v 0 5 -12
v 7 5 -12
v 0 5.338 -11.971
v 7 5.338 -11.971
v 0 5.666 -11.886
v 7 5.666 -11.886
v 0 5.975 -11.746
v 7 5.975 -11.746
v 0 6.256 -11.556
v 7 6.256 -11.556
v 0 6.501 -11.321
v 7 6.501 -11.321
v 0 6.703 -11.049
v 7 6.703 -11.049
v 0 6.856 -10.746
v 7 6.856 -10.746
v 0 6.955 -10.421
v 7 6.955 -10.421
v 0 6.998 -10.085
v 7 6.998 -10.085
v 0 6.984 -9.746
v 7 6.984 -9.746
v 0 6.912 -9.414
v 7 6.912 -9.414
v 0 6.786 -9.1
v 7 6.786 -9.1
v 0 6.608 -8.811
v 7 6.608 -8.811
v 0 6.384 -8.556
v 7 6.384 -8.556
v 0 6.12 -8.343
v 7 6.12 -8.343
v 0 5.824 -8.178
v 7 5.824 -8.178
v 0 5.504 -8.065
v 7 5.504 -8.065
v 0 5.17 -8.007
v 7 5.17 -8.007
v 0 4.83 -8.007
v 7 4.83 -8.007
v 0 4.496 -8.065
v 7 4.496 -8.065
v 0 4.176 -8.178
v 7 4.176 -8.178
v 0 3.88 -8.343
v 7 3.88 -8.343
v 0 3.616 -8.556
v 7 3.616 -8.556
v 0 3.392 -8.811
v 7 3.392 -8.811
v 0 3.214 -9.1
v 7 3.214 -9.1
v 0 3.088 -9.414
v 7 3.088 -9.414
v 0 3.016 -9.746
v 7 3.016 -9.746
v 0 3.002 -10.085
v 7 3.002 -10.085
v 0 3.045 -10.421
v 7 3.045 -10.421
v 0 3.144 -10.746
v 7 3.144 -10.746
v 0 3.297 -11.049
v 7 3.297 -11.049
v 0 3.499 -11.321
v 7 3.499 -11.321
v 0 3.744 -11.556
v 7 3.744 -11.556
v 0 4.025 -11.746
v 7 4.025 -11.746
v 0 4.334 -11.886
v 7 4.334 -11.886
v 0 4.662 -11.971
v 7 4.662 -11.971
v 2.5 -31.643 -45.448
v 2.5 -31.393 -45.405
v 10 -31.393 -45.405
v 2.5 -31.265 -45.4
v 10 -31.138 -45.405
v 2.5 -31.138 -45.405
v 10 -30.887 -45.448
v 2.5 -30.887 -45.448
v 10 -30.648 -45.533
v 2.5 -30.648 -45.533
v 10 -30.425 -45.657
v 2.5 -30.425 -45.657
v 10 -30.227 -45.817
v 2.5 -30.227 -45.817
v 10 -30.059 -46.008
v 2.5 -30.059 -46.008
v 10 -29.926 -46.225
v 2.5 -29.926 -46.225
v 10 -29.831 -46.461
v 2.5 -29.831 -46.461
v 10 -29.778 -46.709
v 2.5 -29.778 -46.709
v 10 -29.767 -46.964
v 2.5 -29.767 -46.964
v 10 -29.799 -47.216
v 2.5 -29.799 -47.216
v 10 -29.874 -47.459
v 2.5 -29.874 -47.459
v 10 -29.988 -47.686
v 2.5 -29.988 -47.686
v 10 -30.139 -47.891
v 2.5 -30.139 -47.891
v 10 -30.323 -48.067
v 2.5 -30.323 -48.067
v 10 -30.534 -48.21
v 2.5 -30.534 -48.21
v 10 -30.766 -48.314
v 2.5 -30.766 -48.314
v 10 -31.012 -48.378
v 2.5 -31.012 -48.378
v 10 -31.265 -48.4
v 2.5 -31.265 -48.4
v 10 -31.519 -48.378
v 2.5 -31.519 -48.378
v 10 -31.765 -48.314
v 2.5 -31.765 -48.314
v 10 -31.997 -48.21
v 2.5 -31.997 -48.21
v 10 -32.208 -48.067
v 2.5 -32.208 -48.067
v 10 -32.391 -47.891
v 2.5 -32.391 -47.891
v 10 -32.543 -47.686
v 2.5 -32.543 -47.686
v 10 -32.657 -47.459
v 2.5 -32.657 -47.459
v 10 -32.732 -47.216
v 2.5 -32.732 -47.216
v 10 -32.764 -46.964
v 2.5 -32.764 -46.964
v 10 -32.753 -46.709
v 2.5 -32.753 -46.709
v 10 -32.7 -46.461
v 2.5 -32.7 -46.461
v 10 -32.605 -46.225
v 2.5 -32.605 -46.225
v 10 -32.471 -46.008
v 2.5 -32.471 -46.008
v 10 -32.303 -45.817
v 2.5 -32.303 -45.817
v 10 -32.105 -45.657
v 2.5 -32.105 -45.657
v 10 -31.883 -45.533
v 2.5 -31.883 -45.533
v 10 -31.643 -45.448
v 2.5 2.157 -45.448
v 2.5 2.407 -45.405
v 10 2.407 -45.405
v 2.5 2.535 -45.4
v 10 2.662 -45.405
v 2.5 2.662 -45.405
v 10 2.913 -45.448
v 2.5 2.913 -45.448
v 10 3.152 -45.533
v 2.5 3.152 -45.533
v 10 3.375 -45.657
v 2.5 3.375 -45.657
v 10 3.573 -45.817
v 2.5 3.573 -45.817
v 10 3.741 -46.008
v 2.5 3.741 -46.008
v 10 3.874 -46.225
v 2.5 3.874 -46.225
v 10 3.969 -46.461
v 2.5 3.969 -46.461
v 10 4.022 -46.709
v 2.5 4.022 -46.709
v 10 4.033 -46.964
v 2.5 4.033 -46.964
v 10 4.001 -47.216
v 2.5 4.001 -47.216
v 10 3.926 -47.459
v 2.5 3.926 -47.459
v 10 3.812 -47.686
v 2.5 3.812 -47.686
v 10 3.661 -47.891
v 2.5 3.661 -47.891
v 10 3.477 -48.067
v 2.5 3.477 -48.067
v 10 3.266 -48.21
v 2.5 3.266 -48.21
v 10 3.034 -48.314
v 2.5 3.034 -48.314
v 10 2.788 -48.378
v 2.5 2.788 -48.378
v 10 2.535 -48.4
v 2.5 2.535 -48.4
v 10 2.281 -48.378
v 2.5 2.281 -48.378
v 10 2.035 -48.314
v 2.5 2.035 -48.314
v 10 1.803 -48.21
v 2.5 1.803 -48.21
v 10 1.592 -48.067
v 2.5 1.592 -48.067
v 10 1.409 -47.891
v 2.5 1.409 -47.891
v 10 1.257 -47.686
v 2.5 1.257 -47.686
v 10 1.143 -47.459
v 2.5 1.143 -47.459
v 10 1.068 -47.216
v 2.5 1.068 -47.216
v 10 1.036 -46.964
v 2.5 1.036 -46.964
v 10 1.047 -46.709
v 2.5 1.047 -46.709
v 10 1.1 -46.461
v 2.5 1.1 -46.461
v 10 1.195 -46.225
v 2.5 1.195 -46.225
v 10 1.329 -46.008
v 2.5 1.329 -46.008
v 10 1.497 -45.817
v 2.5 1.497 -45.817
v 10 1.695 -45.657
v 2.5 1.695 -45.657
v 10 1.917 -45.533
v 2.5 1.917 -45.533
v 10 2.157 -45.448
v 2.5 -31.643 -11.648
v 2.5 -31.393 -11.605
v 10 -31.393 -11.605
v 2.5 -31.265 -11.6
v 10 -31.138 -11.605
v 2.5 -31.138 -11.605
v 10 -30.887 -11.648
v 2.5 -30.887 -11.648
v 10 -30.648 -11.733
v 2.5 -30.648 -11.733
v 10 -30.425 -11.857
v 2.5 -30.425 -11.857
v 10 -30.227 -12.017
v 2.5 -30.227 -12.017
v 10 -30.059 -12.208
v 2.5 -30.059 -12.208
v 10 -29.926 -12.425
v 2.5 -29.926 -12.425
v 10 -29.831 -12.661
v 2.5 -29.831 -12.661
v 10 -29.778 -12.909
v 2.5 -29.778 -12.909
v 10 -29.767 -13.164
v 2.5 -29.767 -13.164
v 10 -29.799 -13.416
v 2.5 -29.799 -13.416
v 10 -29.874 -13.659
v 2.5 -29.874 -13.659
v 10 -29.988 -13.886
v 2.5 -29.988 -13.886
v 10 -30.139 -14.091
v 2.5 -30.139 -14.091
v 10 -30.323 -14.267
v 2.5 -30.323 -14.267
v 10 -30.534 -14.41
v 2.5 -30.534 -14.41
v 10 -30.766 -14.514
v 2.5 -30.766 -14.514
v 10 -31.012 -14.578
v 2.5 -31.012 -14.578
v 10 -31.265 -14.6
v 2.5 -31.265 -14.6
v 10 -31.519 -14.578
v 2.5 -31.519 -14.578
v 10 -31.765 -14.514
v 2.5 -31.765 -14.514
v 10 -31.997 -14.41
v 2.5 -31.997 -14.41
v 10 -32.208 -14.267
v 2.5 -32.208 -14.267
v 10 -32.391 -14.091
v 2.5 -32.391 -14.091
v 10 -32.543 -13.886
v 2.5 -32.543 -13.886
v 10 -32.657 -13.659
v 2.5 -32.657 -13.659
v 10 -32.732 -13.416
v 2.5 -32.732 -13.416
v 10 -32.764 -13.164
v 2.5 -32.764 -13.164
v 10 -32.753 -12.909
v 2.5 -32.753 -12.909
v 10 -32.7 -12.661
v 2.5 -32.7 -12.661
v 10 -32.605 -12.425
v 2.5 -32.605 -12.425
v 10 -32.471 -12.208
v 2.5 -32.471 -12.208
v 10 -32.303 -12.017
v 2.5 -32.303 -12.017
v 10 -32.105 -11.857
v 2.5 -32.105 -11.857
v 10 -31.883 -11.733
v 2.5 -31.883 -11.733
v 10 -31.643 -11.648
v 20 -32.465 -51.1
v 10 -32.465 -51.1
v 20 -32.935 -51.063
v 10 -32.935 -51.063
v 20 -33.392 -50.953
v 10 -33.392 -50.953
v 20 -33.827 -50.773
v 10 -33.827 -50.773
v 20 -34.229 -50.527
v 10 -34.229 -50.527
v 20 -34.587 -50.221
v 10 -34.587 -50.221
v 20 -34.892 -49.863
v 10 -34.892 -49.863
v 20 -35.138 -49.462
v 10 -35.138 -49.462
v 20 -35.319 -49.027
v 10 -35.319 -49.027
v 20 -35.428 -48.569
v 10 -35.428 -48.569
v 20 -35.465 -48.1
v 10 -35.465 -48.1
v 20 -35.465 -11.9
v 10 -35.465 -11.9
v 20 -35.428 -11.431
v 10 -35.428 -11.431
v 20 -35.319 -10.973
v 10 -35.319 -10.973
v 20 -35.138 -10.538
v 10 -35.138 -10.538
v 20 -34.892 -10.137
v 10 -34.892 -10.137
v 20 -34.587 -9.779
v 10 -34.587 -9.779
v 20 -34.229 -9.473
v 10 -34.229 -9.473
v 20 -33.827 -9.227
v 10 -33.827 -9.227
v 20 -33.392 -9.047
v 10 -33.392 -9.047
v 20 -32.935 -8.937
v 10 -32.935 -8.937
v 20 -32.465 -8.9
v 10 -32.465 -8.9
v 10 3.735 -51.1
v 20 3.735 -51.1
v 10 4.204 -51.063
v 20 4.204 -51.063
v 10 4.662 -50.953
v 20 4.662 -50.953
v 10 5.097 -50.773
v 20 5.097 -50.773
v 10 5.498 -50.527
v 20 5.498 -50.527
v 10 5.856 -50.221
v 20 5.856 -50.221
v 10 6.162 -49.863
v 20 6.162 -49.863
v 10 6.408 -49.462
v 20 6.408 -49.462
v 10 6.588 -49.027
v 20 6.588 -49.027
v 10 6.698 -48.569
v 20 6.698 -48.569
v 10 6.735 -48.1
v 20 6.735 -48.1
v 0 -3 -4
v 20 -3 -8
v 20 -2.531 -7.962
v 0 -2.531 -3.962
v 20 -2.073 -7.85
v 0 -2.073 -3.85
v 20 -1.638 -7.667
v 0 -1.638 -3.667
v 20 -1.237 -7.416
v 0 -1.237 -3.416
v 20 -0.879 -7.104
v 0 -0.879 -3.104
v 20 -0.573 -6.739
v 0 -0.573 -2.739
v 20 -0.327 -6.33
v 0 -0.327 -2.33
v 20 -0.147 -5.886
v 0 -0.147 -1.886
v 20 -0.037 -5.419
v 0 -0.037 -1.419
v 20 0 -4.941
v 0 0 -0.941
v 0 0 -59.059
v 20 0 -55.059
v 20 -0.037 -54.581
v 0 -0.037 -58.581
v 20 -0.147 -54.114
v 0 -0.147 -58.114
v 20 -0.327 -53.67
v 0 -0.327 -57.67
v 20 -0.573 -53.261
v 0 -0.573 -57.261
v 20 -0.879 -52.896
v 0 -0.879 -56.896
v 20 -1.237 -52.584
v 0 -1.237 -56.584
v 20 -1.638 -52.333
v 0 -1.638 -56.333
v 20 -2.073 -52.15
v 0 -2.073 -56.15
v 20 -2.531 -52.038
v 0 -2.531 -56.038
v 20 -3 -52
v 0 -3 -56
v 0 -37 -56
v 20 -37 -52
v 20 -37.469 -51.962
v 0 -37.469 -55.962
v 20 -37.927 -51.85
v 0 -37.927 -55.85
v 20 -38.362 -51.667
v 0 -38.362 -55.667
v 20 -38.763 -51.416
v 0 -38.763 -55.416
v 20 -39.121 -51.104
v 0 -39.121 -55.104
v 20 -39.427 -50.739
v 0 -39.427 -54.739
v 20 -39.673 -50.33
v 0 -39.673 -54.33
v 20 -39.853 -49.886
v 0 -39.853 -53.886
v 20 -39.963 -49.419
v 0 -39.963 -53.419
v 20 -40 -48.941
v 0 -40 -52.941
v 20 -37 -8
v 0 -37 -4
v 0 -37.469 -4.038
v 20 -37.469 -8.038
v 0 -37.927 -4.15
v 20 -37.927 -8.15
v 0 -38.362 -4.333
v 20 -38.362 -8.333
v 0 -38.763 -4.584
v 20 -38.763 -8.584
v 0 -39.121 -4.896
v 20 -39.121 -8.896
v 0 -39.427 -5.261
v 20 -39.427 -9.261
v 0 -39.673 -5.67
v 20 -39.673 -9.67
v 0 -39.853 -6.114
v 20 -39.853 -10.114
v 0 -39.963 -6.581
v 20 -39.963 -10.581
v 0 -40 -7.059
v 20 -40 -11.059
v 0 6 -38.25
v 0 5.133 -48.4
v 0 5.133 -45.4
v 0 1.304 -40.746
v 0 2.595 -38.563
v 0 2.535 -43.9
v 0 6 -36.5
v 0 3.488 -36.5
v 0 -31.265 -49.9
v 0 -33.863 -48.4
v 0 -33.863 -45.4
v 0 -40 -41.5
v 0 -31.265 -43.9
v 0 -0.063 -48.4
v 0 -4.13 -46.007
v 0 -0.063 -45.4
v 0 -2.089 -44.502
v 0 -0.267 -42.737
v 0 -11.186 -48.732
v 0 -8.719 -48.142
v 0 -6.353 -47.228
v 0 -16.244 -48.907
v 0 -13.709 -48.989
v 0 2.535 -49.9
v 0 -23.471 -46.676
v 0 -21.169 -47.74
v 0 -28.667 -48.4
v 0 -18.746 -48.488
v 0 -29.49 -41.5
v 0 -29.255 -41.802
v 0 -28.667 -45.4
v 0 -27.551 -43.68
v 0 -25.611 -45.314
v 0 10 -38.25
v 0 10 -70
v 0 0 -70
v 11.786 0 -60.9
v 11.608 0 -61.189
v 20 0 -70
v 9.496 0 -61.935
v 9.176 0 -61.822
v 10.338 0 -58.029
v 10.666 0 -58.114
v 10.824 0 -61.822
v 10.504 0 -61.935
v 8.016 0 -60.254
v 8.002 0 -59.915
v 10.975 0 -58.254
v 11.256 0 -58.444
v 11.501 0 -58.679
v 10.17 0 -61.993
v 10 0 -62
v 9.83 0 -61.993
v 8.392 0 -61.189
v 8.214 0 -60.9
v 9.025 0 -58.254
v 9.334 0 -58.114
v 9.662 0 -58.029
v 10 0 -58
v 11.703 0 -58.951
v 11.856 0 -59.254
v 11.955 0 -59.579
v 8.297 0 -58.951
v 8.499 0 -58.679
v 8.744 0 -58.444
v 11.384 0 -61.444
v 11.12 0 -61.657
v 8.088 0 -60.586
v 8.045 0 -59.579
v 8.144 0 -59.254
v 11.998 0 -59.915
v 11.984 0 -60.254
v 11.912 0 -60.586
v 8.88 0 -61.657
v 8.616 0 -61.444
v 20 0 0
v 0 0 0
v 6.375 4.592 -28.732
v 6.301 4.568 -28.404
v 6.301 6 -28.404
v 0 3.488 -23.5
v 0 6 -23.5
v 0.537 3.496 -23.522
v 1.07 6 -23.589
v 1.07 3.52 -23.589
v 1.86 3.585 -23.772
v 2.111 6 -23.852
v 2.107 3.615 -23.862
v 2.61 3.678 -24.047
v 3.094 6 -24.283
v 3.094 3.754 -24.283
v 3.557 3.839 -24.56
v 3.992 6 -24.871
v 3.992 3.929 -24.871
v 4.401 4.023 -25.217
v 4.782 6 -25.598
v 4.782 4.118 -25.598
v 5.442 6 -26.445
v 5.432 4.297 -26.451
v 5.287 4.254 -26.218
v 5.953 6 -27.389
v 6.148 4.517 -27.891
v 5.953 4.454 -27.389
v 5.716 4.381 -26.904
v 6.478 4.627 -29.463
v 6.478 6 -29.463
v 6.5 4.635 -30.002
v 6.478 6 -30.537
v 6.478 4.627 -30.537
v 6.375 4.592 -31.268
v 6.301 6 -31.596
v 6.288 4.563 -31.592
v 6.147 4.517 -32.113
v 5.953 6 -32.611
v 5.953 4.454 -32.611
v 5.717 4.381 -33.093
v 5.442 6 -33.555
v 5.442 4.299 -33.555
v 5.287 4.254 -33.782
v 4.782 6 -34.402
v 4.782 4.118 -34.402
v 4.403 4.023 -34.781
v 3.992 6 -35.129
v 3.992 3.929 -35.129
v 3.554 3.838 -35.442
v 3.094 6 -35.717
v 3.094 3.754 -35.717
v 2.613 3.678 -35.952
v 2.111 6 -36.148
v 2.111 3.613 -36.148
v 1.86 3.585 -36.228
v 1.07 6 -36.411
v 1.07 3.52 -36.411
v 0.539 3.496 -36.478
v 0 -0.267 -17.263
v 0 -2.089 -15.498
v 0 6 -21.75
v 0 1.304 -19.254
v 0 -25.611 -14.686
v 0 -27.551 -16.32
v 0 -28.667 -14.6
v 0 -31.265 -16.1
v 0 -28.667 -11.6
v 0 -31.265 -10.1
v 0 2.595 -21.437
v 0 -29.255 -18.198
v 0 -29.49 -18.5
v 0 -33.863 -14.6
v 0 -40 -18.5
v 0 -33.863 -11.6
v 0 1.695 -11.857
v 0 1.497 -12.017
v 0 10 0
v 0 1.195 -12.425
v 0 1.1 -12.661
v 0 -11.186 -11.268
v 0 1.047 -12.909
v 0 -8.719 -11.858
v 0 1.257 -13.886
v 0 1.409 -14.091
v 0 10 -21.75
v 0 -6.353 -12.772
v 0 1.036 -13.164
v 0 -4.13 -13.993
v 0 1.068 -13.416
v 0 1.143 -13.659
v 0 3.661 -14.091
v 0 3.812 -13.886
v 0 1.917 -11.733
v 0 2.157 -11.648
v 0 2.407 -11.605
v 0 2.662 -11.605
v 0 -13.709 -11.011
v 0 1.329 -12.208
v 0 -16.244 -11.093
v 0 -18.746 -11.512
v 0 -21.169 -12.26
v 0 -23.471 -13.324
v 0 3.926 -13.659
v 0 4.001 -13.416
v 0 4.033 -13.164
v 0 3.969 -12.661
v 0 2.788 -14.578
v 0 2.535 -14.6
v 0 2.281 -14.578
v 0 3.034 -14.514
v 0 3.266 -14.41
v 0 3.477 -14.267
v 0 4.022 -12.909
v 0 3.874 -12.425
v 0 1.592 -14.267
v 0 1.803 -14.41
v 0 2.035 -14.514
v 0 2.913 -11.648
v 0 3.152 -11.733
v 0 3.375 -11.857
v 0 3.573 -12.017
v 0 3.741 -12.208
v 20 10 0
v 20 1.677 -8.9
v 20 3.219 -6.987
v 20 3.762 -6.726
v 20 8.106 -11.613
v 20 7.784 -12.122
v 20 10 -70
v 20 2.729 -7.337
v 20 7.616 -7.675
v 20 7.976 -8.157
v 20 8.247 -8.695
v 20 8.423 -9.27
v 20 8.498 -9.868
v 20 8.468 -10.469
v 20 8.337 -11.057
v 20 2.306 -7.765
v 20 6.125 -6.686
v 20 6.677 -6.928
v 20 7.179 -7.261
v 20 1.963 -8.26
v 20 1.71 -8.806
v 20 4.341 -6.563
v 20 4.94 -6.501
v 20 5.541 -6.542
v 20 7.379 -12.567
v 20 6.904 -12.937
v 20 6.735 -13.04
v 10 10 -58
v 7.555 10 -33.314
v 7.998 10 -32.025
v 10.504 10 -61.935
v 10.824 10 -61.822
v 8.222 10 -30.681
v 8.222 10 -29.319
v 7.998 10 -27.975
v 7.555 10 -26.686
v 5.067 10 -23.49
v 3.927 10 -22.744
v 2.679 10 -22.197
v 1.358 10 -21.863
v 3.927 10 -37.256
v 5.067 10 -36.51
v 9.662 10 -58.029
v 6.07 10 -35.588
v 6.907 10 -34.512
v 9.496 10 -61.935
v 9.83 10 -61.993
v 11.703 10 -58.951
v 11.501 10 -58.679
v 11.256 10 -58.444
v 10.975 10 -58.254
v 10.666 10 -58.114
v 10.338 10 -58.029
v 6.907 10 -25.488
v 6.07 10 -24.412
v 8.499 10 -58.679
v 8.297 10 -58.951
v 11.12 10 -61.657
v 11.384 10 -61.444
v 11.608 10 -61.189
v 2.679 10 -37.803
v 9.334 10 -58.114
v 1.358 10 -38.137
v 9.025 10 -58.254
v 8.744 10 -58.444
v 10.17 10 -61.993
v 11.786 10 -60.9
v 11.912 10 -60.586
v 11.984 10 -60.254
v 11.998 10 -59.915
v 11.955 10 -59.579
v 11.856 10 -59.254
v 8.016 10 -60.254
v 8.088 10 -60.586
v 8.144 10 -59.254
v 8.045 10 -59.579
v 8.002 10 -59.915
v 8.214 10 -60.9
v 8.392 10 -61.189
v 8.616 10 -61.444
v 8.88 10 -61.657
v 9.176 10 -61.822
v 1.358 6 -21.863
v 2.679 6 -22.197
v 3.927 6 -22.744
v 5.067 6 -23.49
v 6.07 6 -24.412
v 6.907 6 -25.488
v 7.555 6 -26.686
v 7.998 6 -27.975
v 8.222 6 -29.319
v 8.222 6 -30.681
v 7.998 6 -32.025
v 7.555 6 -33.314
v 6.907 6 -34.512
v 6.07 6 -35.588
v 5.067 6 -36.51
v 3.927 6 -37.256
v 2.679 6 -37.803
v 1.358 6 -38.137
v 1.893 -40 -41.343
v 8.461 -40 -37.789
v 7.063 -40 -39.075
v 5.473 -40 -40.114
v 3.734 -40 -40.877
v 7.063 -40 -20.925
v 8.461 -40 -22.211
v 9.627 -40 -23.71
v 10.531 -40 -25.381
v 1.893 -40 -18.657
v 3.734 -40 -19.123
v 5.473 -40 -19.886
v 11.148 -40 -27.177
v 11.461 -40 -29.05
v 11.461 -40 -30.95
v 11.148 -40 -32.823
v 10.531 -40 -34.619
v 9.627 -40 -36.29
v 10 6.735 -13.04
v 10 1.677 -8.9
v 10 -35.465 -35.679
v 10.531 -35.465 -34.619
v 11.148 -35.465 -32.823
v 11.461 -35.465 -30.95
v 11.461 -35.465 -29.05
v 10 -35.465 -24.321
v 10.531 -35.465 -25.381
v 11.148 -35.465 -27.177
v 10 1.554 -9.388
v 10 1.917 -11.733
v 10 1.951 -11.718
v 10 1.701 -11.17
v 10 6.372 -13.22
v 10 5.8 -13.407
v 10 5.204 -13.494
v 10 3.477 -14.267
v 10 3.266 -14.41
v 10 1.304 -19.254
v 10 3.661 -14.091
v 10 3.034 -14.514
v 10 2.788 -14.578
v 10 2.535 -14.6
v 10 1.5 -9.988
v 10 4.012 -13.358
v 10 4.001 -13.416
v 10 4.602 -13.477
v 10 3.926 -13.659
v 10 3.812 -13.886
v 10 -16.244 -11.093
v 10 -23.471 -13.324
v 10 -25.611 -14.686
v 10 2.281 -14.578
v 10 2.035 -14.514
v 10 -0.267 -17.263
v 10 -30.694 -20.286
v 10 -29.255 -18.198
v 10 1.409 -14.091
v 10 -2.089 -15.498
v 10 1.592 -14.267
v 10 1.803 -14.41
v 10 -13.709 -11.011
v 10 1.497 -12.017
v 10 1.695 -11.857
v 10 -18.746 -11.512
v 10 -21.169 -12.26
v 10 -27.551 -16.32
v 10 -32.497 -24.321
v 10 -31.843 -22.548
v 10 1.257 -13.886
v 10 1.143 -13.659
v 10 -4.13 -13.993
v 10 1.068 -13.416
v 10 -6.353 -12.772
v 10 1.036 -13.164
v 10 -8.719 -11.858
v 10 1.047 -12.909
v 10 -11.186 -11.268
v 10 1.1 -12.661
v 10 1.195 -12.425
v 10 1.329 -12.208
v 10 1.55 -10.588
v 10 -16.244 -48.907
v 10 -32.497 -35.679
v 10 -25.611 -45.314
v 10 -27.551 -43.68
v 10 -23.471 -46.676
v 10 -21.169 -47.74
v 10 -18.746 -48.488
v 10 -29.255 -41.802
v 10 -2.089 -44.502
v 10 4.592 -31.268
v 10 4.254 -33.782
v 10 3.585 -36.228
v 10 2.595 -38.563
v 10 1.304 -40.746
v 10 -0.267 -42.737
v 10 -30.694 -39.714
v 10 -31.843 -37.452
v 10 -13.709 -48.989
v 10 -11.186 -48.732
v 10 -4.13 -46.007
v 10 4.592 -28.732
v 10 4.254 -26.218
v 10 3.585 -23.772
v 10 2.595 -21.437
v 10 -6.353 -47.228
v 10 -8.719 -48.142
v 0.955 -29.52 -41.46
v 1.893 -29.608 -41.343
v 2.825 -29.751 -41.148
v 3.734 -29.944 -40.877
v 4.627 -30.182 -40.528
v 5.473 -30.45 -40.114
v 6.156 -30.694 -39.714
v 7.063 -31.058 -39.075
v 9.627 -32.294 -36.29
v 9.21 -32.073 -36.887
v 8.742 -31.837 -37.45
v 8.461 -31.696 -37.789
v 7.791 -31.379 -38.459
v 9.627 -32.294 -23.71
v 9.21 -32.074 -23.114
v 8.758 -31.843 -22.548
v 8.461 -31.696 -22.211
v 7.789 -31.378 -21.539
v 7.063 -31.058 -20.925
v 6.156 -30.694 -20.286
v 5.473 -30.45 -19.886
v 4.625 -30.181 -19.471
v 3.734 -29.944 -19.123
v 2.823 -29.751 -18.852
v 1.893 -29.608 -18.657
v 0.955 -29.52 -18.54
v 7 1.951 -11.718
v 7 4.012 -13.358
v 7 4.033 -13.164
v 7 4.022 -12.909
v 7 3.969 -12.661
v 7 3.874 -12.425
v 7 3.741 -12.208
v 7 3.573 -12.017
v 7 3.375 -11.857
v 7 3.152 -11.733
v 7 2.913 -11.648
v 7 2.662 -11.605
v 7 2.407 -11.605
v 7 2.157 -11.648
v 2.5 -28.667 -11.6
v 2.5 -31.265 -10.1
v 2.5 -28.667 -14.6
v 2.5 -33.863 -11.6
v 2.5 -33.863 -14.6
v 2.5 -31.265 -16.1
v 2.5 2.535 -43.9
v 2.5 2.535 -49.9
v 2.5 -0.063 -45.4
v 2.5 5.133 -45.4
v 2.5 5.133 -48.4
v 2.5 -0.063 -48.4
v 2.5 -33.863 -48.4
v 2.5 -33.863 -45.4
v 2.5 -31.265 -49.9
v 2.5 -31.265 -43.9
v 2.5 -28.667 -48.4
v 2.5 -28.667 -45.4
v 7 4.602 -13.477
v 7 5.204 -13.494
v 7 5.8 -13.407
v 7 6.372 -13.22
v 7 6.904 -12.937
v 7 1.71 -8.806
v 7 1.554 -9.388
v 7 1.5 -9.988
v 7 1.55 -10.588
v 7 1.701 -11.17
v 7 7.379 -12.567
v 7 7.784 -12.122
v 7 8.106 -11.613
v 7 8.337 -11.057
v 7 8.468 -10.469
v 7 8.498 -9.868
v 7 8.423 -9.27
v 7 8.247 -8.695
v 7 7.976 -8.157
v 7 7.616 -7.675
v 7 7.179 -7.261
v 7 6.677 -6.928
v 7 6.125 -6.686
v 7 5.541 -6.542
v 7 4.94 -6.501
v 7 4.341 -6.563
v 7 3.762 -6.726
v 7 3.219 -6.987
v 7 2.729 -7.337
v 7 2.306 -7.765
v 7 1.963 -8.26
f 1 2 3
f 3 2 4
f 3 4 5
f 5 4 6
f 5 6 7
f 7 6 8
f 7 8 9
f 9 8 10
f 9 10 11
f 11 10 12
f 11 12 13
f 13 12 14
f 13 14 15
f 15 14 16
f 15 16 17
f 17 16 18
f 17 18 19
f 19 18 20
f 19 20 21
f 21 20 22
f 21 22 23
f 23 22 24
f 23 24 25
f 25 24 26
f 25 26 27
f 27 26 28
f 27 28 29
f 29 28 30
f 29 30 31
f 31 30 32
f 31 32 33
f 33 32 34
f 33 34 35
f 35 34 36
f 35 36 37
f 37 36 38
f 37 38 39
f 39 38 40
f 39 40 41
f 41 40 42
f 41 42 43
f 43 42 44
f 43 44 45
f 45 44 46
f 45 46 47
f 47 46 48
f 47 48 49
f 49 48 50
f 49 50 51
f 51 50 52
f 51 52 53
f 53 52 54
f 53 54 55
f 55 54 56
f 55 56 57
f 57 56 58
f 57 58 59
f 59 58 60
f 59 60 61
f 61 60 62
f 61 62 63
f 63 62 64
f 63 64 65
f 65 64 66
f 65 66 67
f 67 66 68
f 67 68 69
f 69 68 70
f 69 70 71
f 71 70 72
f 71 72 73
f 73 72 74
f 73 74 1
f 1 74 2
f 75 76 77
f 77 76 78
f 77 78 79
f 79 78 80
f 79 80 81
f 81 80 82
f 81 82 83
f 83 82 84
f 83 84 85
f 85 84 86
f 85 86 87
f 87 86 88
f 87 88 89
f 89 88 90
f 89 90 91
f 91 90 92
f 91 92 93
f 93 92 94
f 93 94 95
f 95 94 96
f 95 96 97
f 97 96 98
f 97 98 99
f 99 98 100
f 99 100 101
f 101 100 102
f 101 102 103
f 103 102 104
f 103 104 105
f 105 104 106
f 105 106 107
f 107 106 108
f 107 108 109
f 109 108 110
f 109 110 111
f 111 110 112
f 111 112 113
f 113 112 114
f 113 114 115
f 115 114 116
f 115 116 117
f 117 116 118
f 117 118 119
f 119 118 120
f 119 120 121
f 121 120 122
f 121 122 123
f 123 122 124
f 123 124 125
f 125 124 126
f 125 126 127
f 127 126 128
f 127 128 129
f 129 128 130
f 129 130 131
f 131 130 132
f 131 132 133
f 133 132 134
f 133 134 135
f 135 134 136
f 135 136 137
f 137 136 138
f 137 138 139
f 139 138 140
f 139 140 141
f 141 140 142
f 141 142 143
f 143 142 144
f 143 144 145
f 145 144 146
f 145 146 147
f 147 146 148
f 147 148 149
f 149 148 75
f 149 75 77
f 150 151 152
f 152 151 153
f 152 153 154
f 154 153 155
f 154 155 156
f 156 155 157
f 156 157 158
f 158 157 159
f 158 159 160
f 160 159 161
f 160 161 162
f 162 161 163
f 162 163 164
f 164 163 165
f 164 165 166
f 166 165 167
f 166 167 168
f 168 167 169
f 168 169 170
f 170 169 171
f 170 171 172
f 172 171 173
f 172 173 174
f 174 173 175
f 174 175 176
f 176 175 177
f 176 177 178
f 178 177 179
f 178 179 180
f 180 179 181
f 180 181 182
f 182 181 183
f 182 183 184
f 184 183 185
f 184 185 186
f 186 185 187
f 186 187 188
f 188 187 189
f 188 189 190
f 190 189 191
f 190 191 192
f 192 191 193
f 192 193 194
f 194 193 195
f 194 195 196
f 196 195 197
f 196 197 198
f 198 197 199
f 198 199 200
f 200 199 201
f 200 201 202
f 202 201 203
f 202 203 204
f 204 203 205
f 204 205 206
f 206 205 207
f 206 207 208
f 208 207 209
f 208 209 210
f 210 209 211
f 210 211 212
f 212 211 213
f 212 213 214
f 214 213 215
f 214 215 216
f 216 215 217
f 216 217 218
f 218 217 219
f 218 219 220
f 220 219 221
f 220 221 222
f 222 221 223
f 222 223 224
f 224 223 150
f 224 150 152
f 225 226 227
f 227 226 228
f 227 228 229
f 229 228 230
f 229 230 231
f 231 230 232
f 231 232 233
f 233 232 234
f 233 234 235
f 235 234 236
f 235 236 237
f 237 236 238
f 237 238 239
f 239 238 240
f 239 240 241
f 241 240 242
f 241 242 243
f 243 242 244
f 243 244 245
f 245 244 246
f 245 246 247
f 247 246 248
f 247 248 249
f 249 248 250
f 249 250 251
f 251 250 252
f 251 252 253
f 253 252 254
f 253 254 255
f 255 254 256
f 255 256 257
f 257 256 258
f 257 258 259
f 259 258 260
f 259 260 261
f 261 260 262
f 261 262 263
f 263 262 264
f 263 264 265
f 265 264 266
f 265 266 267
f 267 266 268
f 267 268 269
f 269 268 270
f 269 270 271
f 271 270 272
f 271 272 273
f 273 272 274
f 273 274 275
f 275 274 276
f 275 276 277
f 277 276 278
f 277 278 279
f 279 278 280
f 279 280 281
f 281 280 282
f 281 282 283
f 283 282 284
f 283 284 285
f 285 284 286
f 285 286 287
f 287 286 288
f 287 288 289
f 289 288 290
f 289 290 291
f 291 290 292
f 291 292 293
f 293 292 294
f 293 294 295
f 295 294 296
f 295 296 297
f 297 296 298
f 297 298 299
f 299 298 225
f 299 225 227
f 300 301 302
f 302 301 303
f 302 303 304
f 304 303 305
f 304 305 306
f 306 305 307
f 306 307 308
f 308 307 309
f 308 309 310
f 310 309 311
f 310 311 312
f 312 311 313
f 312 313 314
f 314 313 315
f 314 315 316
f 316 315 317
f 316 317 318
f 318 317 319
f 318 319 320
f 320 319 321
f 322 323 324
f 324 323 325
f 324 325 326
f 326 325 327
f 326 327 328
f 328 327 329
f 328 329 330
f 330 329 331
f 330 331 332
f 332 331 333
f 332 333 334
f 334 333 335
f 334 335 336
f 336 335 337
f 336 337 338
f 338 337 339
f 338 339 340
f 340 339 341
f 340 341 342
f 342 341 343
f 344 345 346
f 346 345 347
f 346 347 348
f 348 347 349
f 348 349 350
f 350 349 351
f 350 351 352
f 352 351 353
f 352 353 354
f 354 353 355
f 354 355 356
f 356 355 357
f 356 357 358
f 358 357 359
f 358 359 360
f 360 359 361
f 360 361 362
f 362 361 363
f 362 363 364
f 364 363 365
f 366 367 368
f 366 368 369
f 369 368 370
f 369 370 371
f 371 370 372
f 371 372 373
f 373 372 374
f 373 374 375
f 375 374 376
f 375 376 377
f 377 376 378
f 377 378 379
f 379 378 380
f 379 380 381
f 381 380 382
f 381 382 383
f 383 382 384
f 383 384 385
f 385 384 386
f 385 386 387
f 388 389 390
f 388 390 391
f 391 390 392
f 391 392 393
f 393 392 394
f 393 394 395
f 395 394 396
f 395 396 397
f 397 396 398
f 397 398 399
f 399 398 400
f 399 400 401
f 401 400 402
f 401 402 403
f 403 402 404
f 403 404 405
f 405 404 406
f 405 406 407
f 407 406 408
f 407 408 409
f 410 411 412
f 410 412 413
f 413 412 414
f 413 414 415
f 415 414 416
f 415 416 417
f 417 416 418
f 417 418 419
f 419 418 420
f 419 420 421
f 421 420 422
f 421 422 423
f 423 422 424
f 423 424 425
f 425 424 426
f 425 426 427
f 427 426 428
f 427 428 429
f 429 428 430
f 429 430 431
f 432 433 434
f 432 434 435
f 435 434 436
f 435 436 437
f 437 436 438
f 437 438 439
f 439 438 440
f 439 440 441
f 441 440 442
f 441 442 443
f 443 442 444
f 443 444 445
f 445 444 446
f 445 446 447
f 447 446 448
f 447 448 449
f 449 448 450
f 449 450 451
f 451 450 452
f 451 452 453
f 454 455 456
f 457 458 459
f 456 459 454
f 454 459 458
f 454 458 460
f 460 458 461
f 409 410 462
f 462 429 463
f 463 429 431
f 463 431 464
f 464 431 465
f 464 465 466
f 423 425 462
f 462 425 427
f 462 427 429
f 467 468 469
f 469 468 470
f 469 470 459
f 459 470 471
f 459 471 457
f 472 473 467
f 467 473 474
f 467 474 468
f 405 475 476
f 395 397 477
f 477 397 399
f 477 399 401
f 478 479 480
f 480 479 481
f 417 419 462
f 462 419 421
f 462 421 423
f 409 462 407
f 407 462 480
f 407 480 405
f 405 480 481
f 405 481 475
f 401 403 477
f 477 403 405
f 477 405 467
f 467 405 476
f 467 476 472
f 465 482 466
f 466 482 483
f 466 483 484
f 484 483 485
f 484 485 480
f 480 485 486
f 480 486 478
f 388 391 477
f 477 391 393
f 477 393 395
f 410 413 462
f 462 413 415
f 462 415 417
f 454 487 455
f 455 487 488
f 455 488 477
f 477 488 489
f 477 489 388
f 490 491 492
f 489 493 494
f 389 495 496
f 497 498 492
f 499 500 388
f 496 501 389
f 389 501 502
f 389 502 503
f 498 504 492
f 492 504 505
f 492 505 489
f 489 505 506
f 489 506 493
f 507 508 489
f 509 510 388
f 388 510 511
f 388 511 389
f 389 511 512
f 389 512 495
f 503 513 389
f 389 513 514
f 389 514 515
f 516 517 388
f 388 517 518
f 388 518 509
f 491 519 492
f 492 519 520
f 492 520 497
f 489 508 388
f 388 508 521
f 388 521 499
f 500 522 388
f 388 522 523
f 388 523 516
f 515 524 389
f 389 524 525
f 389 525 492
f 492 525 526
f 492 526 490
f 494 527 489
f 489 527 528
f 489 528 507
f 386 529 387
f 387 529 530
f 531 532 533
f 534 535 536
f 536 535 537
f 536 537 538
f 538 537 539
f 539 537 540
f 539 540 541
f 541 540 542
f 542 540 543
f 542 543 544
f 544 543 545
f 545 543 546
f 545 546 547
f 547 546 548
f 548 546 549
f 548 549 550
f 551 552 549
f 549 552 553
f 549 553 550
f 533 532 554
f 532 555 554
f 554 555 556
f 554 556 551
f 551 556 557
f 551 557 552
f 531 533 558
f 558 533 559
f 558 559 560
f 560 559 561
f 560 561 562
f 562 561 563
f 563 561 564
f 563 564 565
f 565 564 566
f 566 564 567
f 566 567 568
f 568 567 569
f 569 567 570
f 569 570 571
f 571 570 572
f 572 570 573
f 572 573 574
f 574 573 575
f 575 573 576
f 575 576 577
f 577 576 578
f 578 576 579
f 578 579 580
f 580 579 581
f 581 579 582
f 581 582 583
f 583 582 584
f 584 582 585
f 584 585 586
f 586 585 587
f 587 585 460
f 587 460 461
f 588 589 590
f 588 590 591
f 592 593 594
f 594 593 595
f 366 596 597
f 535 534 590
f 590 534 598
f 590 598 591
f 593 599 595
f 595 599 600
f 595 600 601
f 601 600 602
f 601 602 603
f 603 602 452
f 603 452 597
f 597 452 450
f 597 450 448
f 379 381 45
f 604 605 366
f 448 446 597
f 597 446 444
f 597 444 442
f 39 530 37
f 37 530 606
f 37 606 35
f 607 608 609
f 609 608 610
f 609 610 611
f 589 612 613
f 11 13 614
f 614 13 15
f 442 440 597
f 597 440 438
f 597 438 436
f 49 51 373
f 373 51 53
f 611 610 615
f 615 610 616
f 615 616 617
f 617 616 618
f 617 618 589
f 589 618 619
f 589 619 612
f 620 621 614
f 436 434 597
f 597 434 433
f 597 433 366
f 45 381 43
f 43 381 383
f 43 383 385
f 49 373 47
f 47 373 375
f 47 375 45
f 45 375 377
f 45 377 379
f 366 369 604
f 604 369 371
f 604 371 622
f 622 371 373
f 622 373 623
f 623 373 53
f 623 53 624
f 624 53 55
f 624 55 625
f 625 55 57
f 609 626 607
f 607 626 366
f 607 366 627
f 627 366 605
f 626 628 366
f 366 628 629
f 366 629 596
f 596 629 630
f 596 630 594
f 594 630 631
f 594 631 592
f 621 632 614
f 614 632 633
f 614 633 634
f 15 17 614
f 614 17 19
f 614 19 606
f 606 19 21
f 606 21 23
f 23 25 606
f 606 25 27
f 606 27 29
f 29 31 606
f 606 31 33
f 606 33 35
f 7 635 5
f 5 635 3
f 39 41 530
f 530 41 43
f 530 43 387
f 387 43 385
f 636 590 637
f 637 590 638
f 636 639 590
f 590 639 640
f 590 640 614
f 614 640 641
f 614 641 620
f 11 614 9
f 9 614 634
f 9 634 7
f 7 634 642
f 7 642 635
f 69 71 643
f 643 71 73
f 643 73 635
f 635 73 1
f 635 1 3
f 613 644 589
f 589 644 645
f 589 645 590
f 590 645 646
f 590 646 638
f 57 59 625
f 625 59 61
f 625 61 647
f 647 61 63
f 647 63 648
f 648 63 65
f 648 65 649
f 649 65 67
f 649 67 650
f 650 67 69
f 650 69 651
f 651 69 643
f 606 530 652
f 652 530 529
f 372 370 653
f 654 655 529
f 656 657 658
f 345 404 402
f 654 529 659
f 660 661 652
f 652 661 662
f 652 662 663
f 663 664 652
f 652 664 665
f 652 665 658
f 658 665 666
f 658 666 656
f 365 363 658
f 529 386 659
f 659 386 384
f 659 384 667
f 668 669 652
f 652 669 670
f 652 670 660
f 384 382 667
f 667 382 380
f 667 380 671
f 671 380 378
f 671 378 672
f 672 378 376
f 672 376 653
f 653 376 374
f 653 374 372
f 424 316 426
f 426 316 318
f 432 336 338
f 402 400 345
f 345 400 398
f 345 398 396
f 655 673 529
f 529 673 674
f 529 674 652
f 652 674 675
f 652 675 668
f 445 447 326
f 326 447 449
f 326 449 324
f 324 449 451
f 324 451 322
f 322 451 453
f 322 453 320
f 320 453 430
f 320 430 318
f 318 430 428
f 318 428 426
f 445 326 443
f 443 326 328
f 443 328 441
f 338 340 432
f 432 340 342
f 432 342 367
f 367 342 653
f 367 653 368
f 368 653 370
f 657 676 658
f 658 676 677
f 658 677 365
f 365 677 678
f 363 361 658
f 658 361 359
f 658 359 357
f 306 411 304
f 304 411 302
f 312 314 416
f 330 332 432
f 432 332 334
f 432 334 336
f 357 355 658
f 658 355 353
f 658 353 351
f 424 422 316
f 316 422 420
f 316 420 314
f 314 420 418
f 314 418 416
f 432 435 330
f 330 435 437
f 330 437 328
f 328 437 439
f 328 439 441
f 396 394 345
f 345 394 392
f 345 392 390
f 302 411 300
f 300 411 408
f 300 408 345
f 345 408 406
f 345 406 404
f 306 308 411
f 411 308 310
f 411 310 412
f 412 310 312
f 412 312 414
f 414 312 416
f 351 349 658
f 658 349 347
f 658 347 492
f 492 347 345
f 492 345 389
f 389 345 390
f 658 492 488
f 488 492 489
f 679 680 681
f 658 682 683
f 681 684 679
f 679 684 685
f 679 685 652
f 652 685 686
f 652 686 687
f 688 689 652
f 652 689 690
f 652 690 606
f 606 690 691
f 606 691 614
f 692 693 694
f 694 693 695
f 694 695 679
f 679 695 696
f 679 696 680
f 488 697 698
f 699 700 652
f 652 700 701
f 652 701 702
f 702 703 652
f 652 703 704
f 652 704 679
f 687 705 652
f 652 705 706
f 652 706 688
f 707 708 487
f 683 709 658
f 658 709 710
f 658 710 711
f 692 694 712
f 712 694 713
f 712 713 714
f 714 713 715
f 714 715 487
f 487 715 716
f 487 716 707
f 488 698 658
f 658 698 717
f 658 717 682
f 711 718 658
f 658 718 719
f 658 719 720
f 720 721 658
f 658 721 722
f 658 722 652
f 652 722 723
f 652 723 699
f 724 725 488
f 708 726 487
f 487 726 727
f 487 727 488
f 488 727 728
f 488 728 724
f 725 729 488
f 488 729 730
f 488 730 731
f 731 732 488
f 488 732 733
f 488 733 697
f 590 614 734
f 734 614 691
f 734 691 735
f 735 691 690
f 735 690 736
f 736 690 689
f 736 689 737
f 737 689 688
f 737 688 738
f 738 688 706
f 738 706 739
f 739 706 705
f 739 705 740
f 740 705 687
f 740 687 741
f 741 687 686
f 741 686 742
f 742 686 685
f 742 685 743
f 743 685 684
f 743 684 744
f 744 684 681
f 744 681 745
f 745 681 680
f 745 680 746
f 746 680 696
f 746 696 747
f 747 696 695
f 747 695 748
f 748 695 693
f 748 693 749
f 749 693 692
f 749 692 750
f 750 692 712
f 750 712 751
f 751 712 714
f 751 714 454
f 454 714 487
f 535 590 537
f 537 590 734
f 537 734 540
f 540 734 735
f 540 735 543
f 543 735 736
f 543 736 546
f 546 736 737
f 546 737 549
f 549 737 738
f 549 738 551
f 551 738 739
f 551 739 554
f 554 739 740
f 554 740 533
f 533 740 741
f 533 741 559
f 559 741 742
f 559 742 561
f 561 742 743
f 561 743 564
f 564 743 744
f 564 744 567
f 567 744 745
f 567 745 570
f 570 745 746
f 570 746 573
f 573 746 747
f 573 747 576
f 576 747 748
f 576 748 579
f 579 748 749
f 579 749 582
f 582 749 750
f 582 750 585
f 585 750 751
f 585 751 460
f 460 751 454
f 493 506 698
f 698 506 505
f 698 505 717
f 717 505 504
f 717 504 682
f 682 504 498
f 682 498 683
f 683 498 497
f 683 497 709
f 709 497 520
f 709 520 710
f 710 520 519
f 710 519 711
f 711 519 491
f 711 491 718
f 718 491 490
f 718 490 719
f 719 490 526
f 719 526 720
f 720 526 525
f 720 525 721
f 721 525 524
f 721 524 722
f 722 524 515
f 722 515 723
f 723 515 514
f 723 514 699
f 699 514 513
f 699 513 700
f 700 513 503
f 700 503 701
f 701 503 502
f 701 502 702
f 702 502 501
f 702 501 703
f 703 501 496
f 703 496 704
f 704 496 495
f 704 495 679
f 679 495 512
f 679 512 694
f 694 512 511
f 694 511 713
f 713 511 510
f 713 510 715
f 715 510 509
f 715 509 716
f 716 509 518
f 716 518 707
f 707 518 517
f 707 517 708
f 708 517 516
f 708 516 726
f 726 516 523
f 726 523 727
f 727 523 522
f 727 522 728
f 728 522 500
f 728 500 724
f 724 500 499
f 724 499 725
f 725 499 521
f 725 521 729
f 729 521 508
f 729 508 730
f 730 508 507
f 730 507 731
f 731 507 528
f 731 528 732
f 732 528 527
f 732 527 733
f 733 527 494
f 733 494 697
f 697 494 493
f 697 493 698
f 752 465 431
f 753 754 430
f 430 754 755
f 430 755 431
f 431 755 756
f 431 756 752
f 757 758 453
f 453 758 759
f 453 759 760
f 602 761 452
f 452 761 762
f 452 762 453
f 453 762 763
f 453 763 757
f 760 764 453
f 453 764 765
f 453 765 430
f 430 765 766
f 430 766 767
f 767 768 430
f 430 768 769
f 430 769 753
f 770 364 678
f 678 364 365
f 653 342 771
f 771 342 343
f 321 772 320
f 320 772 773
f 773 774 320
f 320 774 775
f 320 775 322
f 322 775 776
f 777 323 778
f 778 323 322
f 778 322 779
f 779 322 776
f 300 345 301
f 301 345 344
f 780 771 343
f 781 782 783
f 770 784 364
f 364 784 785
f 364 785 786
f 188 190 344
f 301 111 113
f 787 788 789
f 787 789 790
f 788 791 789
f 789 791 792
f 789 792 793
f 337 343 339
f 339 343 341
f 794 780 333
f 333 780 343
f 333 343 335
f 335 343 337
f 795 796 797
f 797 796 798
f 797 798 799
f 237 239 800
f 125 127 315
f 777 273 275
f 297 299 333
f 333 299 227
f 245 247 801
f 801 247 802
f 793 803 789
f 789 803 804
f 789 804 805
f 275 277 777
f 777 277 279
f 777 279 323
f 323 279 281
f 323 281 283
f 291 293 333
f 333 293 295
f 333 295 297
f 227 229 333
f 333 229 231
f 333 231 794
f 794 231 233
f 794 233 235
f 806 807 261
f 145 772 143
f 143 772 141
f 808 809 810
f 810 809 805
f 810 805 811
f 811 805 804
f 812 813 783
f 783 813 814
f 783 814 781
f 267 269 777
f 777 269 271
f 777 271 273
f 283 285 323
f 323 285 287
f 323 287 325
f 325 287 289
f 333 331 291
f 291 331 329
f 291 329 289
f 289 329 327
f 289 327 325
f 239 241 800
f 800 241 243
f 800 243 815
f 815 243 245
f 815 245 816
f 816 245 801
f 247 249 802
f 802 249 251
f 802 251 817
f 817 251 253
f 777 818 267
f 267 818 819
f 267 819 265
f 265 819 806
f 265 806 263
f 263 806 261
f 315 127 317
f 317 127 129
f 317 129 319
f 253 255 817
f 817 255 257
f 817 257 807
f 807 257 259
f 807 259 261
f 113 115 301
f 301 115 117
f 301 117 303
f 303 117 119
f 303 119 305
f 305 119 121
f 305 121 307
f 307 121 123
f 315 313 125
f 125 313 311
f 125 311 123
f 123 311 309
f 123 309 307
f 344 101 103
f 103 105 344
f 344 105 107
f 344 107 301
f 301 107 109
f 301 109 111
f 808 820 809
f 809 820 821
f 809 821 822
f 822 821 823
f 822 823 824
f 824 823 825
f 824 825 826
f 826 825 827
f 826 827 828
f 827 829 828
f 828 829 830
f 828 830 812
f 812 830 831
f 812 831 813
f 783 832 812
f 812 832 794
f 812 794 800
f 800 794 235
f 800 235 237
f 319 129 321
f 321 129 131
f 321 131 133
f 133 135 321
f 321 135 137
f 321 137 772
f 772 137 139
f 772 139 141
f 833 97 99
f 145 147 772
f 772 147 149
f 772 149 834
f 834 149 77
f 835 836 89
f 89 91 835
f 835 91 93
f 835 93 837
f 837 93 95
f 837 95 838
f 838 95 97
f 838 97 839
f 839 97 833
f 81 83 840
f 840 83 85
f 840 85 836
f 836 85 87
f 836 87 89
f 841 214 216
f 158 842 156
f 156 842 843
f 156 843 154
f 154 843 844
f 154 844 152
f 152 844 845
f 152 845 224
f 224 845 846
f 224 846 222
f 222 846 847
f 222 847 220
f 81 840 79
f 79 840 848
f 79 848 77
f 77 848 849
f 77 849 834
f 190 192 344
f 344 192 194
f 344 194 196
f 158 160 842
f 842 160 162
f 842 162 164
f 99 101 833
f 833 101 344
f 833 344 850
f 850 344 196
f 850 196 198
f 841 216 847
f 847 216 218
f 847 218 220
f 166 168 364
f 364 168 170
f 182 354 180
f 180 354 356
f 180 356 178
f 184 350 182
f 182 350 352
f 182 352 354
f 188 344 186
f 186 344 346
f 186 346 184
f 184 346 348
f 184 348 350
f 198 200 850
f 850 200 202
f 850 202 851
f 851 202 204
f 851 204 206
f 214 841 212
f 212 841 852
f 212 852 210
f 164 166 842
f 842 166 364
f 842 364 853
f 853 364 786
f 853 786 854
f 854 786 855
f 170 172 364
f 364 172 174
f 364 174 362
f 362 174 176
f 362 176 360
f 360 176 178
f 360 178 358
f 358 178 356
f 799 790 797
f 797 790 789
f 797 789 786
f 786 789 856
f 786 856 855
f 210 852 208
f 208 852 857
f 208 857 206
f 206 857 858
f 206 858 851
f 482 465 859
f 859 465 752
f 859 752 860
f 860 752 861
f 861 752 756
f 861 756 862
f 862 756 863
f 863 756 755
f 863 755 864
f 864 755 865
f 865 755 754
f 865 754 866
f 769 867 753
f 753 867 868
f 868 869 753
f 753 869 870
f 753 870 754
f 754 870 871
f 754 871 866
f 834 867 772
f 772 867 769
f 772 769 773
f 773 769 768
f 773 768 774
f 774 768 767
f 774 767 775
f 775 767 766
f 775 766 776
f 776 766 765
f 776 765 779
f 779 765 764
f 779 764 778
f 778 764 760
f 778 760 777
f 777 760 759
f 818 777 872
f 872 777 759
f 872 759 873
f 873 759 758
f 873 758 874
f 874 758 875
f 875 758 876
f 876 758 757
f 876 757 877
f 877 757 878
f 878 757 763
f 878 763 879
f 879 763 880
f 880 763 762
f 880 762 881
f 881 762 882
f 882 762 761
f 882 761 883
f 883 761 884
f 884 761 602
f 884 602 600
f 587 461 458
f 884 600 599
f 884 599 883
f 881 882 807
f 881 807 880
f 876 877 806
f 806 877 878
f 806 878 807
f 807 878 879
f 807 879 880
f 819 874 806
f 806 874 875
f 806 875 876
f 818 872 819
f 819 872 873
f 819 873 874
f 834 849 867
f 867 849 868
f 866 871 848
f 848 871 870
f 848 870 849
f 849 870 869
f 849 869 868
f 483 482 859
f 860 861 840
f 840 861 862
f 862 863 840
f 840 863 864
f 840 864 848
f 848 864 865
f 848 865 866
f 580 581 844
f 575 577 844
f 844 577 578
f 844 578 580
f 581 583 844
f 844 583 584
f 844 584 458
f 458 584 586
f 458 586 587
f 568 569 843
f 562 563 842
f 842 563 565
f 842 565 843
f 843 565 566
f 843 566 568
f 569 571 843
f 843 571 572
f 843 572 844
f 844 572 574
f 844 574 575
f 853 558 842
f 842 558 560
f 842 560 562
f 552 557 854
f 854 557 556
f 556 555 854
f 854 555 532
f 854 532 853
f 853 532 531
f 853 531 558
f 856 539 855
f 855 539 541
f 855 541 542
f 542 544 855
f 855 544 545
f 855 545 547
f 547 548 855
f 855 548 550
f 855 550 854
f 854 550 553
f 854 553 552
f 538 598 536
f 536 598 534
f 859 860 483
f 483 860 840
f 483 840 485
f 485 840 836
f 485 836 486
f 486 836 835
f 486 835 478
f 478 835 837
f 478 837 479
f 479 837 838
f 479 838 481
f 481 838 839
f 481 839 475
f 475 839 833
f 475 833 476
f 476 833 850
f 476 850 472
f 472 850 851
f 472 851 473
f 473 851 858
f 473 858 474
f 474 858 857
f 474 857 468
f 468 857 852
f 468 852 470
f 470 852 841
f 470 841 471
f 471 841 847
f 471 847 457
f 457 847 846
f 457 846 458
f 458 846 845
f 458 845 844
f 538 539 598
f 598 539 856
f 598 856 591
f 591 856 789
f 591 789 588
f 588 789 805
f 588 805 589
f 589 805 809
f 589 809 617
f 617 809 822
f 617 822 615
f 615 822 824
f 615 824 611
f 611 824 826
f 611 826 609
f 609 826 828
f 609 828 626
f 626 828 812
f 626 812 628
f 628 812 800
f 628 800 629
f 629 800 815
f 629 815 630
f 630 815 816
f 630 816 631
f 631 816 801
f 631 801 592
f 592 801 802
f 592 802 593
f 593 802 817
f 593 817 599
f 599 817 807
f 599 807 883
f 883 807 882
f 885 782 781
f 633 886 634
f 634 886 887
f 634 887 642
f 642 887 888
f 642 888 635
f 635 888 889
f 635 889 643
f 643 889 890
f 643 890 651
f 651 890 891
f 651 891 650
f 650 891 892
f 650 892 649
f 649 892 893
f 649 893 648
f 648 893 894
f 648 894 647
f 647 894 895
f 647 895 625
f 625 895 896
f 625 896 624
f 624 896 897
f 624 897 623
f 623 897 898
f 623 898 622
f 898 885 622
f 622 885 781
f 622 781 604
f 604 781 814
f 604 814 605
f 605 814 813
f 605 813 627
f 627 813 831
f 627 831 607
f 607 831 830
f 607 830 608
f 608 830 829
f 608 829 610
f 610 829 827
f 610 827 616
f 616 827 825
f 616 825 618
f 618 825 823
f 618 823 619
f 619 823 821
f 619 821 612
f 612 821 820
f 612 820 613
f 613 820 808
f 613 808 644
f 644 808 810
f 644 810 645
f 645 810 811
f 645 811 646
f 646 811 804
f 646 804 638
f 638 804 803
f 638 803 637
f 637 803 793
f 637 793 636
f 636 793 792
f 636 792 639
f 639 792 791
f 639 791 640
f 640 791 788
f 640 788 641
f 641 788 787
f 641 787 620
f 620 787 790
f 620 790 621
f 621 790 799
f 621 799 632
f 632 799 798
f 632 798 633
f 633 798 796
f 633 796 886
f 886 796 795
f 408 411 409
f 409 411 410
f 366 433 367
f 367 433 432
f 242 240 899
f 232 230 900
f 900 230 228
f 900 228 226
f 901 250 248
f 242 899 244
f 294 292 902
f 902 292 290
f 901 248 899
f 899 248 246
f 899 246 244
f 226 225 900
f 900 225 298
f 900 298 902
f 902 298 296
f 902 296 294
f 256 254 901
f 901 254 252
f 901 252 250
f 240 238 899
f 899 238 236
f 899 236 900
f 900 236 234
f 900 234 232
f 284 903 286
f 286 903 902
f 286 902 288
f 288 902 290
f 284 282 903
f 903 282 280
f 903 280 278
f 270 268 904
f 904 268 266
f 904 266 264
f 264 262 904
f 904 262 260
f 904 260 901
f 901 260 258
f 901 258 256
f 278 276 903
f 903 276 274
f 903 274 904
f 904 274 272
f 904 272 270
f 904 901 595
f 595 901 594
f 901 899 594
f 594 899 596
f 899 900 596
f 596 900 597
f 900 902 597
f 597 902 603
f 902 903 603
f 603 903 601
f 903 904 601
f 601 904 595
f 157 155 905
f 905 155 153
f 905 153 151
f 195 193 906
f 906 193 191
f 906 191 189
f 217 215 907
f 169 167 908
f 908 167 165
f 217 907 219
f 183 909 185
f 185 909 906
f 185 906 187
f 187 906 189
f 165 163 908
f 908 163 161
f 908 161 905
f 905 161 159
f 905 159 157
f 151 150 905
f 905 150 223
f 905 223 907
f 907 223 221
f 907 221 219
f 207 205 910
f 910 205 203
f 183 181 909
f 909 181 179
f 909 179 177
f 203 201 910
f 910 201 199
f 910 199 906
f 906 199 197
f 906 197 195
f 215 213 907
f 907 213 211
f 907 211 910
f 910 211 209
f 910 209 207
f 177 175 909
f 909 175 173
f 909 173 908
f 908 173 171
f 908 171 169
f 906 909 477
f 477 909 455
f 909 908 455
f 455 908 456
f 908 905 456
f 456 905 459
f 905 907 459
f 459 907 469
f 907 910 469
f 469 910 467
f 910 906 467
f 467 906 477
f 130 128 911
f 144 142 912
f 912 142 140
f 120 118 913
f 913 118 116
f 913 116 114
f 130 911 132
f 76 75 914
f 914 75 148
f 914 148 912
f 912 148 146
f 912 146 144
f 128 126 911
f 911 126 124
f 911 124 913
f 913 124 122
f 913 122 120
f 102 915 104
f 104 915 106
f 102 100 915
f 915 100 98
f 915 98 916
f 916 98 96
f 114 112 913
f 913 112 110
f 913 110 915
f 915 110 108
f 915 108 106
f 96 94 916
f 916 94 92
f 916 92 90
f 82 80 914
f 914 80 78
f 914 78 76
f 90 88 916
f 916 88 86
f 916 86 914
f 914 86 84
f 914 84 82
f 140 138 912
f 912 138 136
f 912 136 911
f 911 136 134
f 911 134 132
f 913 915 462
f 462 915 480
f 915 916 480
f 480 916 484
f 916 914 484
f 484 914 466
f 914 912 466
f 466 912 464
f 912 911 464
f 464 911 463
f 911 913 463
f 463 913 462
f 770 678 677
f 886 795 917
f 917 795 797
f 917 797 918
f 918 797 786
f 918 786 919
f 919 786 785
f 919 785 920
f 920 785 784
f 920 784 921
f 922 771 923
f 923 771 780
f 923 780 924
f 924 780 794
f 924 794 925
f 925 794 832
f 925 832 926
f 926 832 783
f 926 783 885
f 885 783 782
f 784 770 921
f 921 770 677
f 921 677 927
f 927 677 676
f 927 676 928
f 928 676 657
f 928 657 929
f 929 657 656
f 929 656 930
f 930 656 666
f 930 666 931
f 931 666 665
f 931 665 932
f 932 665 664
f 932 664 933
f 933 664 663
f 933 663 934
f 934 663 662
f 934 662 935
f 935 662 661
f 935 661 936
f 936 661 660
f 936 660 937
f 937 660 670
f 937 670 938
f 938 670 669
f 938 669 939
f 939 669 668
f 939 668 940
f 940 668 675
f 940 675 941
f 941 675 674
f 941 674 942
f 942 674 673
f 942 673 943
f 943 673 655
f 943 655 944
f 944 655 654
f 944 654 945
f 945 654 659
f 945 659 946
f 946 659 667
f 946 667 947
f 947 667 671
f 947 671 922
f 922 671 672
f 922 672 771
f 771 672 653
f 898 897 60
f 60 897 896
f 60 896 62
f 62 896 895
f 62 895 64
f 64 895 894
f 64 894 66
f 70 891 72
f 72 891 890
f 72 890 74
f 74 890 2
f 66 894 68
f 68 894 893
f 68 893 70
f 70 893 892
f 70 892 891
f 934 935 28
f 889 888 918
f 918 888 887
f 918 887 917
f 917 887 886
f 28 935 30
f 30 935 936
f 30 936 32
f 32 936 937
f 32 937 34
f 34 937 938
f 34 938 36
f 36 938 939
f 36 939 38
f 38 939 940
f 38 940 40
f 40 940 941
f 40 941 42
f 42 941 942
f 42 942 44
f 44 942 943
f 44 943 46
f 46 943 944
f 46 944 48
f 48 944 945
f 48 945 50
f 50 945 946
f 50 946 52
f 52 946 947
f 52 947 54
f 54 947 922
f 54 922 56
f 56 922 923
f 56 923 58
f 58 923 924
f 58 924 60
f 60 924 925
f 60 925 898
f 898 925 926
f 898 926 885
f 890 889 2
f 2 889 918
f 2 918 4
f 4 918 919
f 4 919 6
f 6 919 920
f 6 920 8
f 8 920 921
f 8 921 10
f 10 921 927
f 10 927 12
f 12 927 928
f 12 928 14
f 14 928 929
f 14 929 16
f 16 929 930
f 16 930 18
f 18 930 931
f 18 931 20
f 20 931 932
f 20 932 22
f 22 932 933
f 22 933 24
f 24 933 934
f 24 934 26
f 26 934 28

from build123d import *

# Parameters (mm, degrees)
SKETCH1_W           = 20
SKETCH1_H           = 70
BOSS_EXTRUDE1_DEPTH = 20
SKETCH4_W           = 20
SKETCH4_H           = 70
CUT_EXTRUDE3_DEPTH  = 10
SKETCH5_R           = 6.5
CUT_EXTRUDE4_DEPTH  = 10
SKETCH6_R           = 8.25
CUT_EXTRUDE5_DEPTH  = 4
SKETCH7_R           = 2
CUT_EXTRUDE6_DEPTH  = 20
SKETCH8_R           = 2
CUT_EXTRUDE7_DEPTH  = 20
SKETCH9_W           = 10
SKETCH9_H           = 52
BOSS_EXTRUDE2_DEPTH = 52
SKETCH10_W          = 10
SKETCH10_H          = 52
CUT_EXTRUDE8_DEPTH  = 12
SKETCH11_W          = 42.2
SKETCH11_H          = 42.2
CUT_EXTRUDE9_DEPTH  = 5
SKETCH12_W          = 42.2
SKETCH12_H          = 42.2
CUT_EXTRUDE10_DEPTH = 5
SKETCH13_W          = 52
SKETCH13_H          = 40
BOSS_EXTRUDE3_DEPTH = 10
SKETCH14_R          = 11.5
CUT_EXTRUDE11_DEPTH = 100
SKETCH16_R          = 19
CUT_EXTRUDE12_DEPTH = 100
SKETCH17_R          = 1.5
CUT_EXTRUDE13_DEPTH = 100
CUT_EXTRUDE14_DEPTH = 40
FILLET1_R           = 3
FILLET2_R           = 3
FILLET3_R           = 3
FILLET4_R           = 3
FILLET5_R           = 3
FILLET6_R           = 3
FILLET7_R           = 3
CUT_EXTRUDE15_DEPTH = 2.5
SKETCH21_R          = 3.5
CUT_EXTRUDE16_DEPTH = 13


with BuildPart() as part:
    # Sketch1 → Boss-Extrude1 (new body)
    with BuildSketch(Plane(origin=(0, 0, 0), x_dir=(1, 0, 0), z_dir=(0, 1, 0))):
        with Locations((10, 35)):
            Rectangle(SKETCH1_W, SKETCH1_H)
    extrude(amount=BOSS_EXTRUDE1_DEPTH)

    # Sketch4 → Cut-Extrude3 (cut)
    with BuildSketch(Plane(origin=(0, 20, 0), x_dir=(1, 0, 0), z_dir=(0, 1, 0))):
        with Locations((10, 35)):
            Rectangle(SKETCH4_W, SKETCH4_H)
    extrude(amount=-CUT_EXTRUDE3_DEPTH, mode=Mode.SUBTRACT)

    # Sketch5 → Cut-Extrude4 (cut)
    with BuildSketch(Plane(origin=(0, 10, 0), x_dir=(1, 0, 0), z_dir=(0, 1, 0))):
        with Locations((0, 30)):
            Circle(SKETCH5_R)
    extrude(amount=-CUT_EXTRUDE4_DEPTH, mode=Mode.SUBTRACT)

    # Sketch6 → Cut-Extrude5 (cut)
    with BuildSketch(Plane(origin=(0, 10, 0), x_dir=(1, 0, 0), z_dir=(0, 1, 0))):
        with Locations((0, 30)):
            Circle(SKETCH6_R)
    extrude(amount=-CUT_EXTRUDE5_DEPTH, mode=Mode.SUBTRACT)

    # Sketch7 → Cut-Extrude6 (cut)
    with BuildSketch(Plane(origin=(20, 0, 0), x_dir=(0, 0, -1), z_dir=(1, 0, 0))):
        with Locations((10, 5)):
            Circle(SKETCH7_R)
    extrude(amount=-CUT_EXTRUDE6_DEPTH, mode=Mode.SUBTRACT)

    # Sketch8 → Cut-Extrude7 (cut)
    with BuildSketch(Plane(origin=(0, 10, 0), x_dir=(1, 0, 0), z_dir=(0, 1, 0))):
        with Locations(Location((10, 60, 0), (0, 0, 270))):
            Circle(SKETCH8_R)
    extrude(amount=-CUT_EXTRUDE7_DEPTH, mode=Mode.SUBTRACT)

    # Sketch9 → Boss-Extrude2 (add)
    with BuildSketch(Plane.XZ):
        with Locations((15, -30)):
            Rectangle(SKETCH9_W, SKETCH9_H)
    extrude(amount=BOSS_EXTRUDE2_DEPTH)

    # Sketch10 → Cut-Extrude8 (cut)
    with BuildSketch(Plane.XZ.offset(52)):
        with Locations((15, -30)):
            Rectangle(SKETCH10_W, SKETCH10_H)
    extrude(amount=-CUT_EXTRUDE8_DEPTH, mode=Mode.SUBTRACT)

    # Sketch11 → Cut-Extrude9 (cut)
    with BuildSketch(Plane(origin=(20, 0, 0), x_dir=(0, 0, -1), z_dir=(1, 0, 0))):
        with Locations((30, -14.365359388)):
            Rectangle(SKETCH11_W, SKETCH11_H)
    extrude(amount=-CUT_EXTRUDE9_DEPTH, mode=Mode.SUBTRACT)

    # Sketch12 → Cut-Extrude10 (cut)
    with BuildSketch(Plane(origin=(15, 0, 0), x_dir=(0, 0, -1), z_dir=(1, 0, 0))):
        with Locations((30, -14.365359388)):
            Rectangle(SKETCH12_W, SKETCH12_H)
    extrude(amount=-CUT_EXTRUDE10_DEPTH, mode=Mode.SUBTRACT)

    # Sketch13 → Boss-Extrude3 (add)
    with BuildSketch(Plane.ZY.offset(-10)):
        with Locations((-30, -20)):
            Rectangle(SKETCH13_W, SKETCH13_H)
    extrude(amount=BOSS_EXTRUDE3_DEPTH)

    # Sketch14 → Cut-Extrude11 (cut)
    with BuildSketch(Plane(origin=(0, 0, 0), x_dir=(1, 0, 0), z_dir=(0, 1, 0))):
        with Locations((0, 30)):
            Circle(SKETCH14_R)
    extrude(amount=-CUT_EXTRUDE11_DEPTH, mode=Mode.SUBTRACT)

    # Sketch16 → Cut-Extrude12 (cut)
    with BuildSketch(Plane(origin=(10, 0, 0), x_dir=(0, 0, -1), z_dir=(1, 0, 0))):
        with Locations((30, -14.365359388)):
            Circle(SKETCH16_R)
    extrude(amount=-CUT_EXTRUDE12_DEPTH, mode=Mode.SUBTRACT)

    # Sketch17 → Cut-Extrude13 (cut)
    with BuildSketch(Plane(origin=(10, 0, 0), x_dir=(0, 0, -1), z_dir=(1, 0, 0))):
        with Locations((13.1, 2.534640612)):
            Circle(SKETCH17_R)
        with Locations((46.9, 2.534640612)):
            Circle(SKETCH17_R)
        with Locations((13.1, -31.265359388)):
            Circle(SKETCH17_R)
        with Locations((46.9, -31.265359388)):
            Circle(SKETCH17_R)
    extrude(amount=-CUT_EXTRUDE13_DEPTH, mode=Mode.SUBTRACT)

    # Sketch19 → Cut-Extrude14 (cut)
    with BuildSketch(Plane.XZ.offset(40)):
        Polygon((20, -56), (20, -52), (0, -56), align=None)
        Polygon((20, -4), (20, -8), (0, -4), align=None)
    extrude(amount=-CUT_EXTRUDE14_DEPTH, mode=Mode.SUBTRACT)

    # Fillet1
    fillet1_edges = [part.edges().sort_by_distance(p)[0] for p in [
        (10, -40, -6),
    ]]
    fillet(fillet1_edges, radius=FILLET1_R)

    # Fillet2
    fillet2_edges = [part.edges().sort_by_distance(p)[0] for p in [
        (10, -40, -54),
    ]]
    fillet(fillet2_edges, radius=FILLET2_R)

    # Fillet3
    fillet3_edges = [part.edges().sort_by_distance(p)[0] for p in [
        (10, 0, -54),
    ]]
    fillet(fillet3_edges, radius=FILLET3_R)

    # Fillet4
    fillet4_edges = [part.edges().sort_by_distance(p)[0] for p in [
        (10, 0, -6),
    ]]
    fillet(fillet4_edges, radius=FILLET4_R)

    # Fillet5
    fillet5_edges = [part.edges().sort_by_distance(p)[0] for p in [
        (15, 6.734640612, -51.1),
    ]]
    fillet(fillet5_edges, radius=FILLET5_R)

    # Fillet6
    fillet6_edges = [part.edges().sort_by_distance(p)[0] for p in [
        (15, -35.465359388, -8.9),
    ]]
    fillet(fillet6_edges, radius=FILLET6_R)

    # Fillet7
    fillet7_edges = [part.edges().sort_by_distance(p)[0] for p in [
        (15, -35.465359388, -51.1),
    ]]
    fillet(fillet7_edges, radius=FILLET7_R)

    # Sketch20 → Cut-Extrude15 (cut)
    with BuildSketch(Plane.ZY):
        Polygon((-16.1, -31.265359388), (-14.6, -33.8634356), (-11.6, -33.8634356), (-10.1, -31.265359388), (-11.6, -28.667283177), (-14.6, -28.667283177), align=None)
        Polygon((-49.9, -31.265359388), (-48.4, -33.8634356), (-45.4, -33.8634356), (-43.9, -31.265359388), (-45.4, -28.667283177), (-48.4, -28.667283177), align=None)
        Polygon((-49.9, 2.534640612), (-48.4, -0.0634356), (-45.4, -0.0634356), (-43.9, 2.534640612), (-45.4, 5.132716823), (-48.4, 5.132716823), align=None)
    extrude(amount=-CUT_EXTRUDE15_DEPTH, mode=Mode.SUBTRACT)

    # Sketch21 → Cut-Extrude16 (cut)
    with BuildSketch(Plane(origin=(20, 0, 0), x_dir=(0, 0, -1), z_dir=(1, 0, 0))):
        with Locations((10, 5)):
            Circle(SKETCH21_R)
    extrude(amount=-CUT_EXTRUDE16_DEPTH, mode=Mode.SUBTRACT)


solid = part.part
